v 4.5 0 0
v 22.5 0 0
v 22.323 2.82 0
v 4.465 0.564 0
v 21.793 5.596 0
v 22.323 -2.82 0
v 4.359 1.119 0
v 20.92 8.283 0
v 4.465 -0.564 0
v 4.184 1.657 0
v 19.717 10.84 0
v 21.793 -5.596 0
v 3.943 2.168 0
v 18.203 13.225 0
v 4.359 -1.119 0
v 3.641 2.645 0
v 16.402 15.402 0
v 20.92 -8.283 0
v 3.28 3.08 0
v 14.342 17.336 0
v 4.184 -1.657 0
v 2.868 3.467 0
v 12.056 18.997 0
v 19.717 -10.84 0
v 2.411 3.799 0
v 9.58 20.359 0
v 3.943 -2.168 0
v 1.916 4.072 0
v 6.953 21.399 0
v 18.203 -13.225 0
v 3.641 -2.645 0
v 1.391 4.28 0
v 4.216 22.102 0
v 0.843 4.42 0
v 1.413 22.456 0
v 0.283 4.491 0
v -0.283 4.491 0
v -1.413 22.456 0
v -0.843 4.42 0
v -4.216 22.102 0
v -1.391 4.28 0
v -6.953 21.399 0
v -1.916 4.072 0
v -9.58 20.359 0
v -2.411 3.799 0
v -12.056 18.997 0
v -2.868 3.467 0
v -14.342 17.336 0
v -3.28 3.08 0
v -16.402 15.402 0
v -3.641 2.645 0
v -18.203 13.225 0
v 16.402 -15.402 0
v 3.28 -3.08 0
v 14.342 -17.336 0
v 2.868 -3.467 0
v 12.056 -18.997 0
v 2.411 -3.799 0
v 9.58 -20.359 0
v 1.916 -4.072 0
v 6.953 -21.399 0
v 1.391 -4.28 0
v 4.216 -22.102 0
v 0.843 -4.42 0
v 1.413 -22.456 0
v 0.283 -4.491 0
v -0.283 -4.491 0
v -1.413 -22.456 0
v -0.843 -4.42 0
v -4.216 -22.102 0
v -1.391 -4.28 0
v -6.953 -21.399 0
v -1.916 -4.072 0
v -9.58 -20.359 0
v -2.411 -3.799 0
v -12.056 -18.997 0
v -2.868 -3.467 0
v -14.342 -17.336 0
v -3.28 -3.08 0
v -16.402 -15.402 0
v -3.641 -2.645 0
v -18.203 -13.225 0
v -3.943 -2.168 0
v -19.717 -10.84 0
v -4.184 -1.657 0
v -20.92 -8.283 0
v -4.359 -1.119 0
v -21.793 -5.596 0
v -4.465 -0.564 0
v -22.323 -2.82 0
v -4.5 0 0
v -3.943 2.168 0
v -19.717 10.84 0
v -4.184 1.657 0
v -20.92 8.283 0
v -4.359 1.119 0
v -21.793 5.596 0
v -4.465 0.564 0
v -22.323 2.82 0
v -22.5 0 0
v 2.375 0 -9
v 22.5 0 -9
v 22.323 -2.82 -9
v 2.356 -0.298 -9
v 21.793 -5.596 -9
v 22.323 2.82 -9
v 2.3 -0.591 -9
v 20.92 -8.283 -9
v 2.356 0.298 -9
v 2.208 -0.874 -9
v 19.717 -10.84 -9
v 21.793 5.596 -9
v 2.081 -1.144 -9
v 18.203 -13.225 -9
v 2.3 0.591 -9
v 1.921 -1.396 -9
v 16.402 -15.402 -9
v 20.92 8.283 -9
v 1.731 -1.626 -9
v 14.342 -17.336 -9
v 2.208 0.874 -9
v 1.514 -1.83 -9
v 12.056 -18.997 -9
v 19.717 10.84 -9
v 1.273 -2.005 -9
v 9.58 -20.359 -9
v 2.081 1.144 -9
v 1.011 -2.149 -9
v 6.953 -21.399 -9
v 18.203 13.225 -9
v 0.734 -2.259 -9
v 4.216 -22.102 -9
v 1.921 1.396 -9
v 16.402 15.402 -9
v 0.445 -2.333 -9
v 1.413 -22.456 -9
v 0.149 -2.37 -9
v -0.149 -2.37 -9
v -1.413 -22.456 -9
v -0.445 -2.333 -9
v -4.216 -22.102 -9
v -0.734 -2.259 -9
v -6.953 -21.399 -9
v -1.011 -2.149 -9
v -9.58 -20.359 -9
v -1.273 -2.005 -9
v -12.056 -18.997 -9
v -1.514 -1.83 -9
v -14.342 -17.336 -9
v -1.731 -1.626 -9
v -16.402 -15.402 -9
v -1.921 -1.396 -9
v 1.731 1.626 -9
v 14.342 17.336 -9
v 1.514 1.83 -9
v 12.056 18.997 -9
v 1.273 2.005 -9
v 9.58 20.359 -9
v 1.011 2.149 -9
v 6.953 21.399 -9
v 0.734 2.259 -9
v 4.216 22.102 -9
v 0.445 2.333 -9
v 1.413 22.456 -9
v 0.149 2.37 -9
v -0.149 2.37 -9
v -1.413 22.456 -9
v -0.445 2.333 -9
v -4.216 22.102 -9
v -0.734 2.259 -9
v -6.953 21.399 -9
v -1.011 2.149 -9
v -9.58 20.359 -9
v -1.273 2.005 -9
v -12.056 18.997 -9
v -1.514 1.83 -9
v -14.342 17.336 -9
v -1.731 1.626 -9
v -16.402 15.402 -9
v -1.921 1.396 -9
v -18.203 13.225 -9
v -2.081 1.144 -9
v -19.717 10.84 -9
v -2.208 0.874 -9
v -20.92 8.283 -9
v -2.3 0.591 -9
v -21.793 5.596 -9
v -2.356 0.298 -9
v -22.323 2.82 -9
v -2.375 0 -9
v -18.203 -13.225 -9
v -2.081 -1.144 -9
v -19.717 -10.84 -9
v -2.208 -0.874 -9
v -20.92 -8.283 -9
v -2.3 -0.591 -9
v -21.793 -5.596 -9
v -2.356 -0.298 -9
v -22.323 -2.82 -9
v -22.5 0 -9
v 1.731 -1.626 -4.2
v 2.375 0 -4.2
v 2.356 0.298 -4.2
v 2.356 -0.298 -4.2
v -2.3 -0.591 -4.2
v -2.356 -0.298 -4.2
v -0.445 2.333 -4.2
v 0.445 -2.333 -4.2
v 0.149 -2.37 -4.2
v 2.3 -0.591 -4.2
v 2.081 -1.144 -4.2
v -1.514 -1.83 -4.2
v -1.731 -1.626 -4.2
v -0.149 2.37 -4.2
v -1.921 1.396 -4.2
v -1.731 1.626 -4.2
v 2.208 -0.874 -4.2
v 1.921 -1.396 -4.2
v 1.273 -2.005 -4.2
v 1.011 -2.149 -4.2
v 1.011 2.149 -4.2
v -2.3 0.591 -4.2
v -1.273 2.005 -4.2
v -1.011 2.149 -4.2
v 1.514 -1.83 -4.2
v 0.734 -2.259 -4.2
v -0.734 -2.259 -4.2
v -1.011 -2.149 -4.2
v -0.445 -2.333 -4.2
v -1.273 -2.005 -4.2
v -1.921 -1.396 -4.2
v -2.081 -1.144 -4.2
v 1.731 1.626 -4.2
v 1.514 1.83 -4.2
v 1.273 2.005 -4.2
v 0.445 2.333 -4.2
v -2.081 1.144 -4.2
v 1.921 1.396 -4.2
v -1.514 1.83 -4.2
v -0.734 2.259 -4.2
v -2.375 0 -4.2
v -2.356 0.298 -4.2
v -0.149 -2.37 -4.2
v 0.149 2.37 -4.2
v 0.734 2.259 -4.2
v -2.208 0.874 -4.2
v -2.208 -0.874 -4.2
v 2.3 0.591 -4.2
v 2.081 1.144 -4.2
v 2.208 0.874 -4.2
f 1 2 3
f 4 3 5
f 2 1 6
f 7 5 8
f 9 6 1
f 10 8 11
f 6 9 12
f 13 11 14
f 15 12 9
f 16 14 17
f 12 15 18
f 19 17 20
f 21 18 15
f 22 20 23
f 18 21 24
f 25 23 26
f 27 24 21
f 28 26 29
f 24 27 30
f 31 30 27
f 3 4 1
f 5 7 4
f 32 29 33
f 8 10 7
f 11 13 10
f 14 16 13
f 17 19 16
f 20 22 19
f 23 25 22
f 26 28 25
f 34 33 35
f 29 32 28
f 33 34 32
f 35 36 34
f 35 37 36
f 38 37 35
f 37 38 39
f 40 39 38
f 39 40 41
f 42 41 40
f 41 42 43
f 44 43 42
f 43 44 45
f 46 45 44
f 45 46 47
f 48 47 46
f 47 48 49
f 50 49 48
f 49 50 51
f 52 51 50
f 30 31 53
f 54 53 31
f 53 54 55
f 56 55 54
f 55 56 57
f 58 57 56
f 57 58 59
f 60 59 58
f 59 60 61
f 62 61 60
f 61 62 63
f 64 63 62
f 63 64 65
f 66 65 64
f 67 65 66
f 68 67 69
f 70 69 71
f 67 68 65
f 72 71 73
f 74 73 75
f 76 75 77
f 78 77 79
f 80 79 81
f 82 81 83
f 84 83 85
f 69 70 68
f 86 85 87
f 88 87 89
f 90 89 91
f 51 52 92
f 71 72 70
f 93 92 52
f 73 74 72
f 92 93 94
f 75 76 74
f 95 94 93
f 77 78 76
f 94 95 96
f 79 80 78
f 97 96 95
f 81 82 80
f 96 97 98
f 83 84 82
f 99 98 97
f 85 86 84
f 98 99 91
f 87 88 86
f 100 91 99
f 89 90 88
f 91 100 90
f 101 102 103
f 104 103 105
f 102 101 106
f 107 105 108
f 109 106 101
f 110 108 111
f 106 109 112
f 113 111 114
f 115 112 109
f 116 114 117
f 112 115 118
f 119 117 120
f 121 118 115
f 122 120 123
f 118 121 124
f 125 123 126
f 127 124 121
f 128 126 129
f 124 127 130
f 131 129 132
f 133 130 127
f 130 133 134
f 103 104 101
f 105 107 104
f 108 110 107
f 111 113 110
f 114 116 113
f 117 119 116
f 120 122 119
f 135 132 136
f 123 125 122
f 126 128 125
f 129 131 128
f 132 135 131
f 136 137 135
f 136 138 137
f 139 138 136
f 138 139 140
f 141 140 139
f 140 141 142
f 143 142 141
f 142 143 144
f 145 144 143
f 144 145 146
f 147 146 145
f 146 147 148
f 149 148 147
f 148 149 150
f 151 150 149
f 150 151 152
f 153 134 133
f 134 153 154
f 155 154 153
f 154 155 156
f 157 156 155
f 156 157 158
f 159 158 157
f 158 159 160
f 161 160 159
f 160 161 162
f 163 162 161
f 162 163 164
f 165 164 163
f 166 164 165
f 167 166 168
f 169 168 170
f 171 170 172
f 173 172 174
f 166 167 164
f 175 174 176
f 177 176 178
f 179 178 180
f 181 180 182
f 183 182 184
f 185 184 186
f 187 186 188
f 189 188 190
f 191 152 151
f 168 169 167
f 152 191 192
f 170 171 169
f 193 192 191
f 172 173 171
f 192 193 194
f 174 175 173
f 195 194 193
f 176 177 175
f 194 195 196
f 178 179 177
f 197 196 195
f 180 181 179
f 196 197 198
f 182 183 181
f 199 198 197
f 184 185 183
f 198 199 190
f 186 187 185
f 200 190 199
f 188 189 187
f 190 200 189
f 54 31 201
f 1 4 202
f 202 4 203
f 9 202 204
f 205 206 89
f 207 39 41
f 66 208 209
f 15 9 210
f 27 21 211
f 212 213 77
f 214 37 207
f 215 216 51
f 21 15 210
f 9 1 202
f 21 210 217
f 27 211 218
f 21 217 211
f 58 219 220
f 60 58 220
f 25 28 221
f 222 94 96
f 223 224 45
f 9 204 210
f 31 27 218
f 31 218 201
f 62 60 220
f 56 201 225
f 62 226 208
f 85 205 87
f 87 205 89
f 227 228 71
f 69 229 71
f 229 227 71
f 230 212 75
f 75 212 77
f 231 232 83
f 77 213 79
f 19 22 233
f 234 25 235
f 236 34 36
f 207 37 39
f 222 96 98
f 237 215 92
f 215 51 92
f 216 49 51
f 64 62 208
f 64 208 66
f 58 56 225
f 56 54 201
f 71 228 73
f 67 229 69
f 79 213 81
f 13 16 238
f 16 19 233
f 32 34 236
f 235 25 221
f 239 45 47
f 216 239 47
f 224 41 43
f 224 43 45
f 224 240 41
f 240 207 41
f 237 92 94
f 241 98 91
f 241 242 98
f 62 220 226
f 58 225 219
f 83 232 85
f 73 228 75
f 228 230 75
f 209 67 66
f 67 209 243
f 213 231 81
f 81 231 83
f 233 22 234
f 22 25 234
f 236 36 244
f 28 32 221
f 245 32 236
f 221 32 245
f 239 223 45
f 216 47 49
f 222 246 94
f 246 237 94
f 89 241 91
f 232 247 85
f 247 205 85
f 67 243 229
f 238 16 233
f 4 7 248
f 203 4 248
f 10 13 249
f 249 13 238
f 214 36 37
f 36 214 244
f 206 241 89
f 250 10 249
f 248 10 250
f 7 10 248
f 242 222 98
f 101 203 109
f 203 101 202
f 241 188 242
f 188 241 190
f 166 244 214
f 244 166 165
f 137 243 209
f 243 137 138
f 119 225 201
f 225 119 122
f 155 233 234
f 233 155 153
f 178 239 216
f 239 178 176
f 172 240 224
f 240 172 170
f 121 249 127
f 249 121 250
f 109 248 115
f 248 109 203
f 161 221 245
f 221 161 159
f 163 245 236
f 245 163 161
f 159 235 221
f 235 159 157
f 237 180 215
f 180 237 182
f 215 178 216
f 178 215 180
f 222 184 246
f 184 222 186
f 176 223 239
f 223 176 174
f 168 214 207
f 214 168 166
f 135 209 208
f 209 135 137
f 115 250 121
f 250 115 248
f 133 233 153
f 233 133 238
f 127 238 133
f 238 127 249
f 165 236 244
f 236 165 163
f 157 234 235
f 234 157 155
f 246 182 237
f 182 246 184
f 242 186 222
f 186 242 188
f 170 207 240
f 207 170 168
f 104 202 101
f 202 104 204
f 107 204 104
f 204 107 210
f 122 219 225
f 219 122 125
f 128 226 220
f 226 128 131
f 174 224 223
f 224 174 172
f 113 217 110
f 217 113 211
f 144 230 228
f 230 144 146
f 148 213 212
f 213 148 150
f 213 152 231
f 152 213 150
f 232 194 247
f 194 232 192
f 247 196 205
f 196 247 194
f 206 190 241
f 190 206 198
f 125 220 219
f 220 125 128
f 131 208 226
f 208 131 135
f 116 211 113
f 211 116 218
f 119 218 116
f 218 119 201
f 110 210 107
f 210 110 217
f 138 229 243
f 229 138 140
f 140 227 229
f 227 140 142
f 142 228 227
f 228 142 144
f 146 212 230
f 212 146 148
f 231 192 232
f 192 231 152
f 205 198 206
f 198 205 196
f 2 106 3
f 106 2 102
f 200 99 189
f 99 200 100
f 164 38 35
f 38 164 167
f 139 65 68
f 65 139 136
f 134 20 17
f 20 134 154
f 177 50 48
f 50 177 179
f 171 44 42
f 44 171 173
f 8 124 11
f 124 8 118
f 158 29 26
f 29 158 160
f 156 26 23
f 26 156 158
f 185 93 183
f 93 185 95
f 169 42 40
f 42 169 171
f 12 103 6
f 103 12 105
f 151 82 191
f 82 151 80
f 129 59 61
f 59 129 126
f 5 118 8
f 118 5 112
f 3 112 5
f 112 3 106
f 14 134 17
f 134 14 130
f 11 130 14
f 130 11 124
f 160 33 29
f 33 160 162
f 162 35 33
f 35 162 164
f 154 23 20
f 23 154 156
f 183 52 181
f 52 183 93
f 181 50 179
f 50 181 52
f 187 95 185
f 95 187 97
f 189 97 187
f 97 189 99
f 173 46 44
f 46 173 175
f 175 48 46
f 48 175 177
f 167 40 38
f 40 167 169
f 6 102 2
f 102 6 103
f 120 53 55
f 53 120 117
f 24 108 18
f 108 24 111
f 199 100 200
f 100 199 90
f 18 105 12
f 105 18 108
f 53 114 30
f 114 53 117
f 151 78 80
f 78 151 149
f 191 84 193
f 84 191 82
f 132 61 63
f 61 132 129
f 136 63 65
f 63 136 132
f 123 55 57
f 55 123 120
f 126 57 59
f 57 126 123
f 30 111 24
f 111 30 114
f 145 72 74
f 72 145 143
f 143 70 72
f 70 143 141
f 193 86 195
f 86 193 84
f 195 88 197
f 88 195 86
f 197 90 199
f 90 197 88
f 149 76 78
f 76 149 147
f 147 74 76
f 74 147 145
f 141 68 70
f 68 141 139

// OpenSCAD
$fn = 50;


difference() {
	union() {
		translate(v = [0, 0, -9.0000000000]) {
			cylinder(h = 9, r = 22.5000000000);
		}
	}
	union() {
		translate(v = [0, 0, 0]) {
			rotate(a = [0, 0, 0]) {
				difference() {
					union() {
						translate(v = [0, 0, -9.0000000000]) {
							cylinder(h = 9, r = 2.2500000000);
						}
						translate(v = [0, 0, -4.2000000000]) {
							cylinder(h = 4.2000000000, r1 = 2.3750000000, r2 = 4.5000000000);
						}
						translate(v = [0, 0, -9.0000000000]) {
							cylinder(h = 9, r = 2.3750000000);
						}
						translate(v = [0, 0, -9.0000000000]) {
							cylinder(h = 9, r = 2.2500000000);
						}
					}
					union();
				}
			}
		}
	}
}
